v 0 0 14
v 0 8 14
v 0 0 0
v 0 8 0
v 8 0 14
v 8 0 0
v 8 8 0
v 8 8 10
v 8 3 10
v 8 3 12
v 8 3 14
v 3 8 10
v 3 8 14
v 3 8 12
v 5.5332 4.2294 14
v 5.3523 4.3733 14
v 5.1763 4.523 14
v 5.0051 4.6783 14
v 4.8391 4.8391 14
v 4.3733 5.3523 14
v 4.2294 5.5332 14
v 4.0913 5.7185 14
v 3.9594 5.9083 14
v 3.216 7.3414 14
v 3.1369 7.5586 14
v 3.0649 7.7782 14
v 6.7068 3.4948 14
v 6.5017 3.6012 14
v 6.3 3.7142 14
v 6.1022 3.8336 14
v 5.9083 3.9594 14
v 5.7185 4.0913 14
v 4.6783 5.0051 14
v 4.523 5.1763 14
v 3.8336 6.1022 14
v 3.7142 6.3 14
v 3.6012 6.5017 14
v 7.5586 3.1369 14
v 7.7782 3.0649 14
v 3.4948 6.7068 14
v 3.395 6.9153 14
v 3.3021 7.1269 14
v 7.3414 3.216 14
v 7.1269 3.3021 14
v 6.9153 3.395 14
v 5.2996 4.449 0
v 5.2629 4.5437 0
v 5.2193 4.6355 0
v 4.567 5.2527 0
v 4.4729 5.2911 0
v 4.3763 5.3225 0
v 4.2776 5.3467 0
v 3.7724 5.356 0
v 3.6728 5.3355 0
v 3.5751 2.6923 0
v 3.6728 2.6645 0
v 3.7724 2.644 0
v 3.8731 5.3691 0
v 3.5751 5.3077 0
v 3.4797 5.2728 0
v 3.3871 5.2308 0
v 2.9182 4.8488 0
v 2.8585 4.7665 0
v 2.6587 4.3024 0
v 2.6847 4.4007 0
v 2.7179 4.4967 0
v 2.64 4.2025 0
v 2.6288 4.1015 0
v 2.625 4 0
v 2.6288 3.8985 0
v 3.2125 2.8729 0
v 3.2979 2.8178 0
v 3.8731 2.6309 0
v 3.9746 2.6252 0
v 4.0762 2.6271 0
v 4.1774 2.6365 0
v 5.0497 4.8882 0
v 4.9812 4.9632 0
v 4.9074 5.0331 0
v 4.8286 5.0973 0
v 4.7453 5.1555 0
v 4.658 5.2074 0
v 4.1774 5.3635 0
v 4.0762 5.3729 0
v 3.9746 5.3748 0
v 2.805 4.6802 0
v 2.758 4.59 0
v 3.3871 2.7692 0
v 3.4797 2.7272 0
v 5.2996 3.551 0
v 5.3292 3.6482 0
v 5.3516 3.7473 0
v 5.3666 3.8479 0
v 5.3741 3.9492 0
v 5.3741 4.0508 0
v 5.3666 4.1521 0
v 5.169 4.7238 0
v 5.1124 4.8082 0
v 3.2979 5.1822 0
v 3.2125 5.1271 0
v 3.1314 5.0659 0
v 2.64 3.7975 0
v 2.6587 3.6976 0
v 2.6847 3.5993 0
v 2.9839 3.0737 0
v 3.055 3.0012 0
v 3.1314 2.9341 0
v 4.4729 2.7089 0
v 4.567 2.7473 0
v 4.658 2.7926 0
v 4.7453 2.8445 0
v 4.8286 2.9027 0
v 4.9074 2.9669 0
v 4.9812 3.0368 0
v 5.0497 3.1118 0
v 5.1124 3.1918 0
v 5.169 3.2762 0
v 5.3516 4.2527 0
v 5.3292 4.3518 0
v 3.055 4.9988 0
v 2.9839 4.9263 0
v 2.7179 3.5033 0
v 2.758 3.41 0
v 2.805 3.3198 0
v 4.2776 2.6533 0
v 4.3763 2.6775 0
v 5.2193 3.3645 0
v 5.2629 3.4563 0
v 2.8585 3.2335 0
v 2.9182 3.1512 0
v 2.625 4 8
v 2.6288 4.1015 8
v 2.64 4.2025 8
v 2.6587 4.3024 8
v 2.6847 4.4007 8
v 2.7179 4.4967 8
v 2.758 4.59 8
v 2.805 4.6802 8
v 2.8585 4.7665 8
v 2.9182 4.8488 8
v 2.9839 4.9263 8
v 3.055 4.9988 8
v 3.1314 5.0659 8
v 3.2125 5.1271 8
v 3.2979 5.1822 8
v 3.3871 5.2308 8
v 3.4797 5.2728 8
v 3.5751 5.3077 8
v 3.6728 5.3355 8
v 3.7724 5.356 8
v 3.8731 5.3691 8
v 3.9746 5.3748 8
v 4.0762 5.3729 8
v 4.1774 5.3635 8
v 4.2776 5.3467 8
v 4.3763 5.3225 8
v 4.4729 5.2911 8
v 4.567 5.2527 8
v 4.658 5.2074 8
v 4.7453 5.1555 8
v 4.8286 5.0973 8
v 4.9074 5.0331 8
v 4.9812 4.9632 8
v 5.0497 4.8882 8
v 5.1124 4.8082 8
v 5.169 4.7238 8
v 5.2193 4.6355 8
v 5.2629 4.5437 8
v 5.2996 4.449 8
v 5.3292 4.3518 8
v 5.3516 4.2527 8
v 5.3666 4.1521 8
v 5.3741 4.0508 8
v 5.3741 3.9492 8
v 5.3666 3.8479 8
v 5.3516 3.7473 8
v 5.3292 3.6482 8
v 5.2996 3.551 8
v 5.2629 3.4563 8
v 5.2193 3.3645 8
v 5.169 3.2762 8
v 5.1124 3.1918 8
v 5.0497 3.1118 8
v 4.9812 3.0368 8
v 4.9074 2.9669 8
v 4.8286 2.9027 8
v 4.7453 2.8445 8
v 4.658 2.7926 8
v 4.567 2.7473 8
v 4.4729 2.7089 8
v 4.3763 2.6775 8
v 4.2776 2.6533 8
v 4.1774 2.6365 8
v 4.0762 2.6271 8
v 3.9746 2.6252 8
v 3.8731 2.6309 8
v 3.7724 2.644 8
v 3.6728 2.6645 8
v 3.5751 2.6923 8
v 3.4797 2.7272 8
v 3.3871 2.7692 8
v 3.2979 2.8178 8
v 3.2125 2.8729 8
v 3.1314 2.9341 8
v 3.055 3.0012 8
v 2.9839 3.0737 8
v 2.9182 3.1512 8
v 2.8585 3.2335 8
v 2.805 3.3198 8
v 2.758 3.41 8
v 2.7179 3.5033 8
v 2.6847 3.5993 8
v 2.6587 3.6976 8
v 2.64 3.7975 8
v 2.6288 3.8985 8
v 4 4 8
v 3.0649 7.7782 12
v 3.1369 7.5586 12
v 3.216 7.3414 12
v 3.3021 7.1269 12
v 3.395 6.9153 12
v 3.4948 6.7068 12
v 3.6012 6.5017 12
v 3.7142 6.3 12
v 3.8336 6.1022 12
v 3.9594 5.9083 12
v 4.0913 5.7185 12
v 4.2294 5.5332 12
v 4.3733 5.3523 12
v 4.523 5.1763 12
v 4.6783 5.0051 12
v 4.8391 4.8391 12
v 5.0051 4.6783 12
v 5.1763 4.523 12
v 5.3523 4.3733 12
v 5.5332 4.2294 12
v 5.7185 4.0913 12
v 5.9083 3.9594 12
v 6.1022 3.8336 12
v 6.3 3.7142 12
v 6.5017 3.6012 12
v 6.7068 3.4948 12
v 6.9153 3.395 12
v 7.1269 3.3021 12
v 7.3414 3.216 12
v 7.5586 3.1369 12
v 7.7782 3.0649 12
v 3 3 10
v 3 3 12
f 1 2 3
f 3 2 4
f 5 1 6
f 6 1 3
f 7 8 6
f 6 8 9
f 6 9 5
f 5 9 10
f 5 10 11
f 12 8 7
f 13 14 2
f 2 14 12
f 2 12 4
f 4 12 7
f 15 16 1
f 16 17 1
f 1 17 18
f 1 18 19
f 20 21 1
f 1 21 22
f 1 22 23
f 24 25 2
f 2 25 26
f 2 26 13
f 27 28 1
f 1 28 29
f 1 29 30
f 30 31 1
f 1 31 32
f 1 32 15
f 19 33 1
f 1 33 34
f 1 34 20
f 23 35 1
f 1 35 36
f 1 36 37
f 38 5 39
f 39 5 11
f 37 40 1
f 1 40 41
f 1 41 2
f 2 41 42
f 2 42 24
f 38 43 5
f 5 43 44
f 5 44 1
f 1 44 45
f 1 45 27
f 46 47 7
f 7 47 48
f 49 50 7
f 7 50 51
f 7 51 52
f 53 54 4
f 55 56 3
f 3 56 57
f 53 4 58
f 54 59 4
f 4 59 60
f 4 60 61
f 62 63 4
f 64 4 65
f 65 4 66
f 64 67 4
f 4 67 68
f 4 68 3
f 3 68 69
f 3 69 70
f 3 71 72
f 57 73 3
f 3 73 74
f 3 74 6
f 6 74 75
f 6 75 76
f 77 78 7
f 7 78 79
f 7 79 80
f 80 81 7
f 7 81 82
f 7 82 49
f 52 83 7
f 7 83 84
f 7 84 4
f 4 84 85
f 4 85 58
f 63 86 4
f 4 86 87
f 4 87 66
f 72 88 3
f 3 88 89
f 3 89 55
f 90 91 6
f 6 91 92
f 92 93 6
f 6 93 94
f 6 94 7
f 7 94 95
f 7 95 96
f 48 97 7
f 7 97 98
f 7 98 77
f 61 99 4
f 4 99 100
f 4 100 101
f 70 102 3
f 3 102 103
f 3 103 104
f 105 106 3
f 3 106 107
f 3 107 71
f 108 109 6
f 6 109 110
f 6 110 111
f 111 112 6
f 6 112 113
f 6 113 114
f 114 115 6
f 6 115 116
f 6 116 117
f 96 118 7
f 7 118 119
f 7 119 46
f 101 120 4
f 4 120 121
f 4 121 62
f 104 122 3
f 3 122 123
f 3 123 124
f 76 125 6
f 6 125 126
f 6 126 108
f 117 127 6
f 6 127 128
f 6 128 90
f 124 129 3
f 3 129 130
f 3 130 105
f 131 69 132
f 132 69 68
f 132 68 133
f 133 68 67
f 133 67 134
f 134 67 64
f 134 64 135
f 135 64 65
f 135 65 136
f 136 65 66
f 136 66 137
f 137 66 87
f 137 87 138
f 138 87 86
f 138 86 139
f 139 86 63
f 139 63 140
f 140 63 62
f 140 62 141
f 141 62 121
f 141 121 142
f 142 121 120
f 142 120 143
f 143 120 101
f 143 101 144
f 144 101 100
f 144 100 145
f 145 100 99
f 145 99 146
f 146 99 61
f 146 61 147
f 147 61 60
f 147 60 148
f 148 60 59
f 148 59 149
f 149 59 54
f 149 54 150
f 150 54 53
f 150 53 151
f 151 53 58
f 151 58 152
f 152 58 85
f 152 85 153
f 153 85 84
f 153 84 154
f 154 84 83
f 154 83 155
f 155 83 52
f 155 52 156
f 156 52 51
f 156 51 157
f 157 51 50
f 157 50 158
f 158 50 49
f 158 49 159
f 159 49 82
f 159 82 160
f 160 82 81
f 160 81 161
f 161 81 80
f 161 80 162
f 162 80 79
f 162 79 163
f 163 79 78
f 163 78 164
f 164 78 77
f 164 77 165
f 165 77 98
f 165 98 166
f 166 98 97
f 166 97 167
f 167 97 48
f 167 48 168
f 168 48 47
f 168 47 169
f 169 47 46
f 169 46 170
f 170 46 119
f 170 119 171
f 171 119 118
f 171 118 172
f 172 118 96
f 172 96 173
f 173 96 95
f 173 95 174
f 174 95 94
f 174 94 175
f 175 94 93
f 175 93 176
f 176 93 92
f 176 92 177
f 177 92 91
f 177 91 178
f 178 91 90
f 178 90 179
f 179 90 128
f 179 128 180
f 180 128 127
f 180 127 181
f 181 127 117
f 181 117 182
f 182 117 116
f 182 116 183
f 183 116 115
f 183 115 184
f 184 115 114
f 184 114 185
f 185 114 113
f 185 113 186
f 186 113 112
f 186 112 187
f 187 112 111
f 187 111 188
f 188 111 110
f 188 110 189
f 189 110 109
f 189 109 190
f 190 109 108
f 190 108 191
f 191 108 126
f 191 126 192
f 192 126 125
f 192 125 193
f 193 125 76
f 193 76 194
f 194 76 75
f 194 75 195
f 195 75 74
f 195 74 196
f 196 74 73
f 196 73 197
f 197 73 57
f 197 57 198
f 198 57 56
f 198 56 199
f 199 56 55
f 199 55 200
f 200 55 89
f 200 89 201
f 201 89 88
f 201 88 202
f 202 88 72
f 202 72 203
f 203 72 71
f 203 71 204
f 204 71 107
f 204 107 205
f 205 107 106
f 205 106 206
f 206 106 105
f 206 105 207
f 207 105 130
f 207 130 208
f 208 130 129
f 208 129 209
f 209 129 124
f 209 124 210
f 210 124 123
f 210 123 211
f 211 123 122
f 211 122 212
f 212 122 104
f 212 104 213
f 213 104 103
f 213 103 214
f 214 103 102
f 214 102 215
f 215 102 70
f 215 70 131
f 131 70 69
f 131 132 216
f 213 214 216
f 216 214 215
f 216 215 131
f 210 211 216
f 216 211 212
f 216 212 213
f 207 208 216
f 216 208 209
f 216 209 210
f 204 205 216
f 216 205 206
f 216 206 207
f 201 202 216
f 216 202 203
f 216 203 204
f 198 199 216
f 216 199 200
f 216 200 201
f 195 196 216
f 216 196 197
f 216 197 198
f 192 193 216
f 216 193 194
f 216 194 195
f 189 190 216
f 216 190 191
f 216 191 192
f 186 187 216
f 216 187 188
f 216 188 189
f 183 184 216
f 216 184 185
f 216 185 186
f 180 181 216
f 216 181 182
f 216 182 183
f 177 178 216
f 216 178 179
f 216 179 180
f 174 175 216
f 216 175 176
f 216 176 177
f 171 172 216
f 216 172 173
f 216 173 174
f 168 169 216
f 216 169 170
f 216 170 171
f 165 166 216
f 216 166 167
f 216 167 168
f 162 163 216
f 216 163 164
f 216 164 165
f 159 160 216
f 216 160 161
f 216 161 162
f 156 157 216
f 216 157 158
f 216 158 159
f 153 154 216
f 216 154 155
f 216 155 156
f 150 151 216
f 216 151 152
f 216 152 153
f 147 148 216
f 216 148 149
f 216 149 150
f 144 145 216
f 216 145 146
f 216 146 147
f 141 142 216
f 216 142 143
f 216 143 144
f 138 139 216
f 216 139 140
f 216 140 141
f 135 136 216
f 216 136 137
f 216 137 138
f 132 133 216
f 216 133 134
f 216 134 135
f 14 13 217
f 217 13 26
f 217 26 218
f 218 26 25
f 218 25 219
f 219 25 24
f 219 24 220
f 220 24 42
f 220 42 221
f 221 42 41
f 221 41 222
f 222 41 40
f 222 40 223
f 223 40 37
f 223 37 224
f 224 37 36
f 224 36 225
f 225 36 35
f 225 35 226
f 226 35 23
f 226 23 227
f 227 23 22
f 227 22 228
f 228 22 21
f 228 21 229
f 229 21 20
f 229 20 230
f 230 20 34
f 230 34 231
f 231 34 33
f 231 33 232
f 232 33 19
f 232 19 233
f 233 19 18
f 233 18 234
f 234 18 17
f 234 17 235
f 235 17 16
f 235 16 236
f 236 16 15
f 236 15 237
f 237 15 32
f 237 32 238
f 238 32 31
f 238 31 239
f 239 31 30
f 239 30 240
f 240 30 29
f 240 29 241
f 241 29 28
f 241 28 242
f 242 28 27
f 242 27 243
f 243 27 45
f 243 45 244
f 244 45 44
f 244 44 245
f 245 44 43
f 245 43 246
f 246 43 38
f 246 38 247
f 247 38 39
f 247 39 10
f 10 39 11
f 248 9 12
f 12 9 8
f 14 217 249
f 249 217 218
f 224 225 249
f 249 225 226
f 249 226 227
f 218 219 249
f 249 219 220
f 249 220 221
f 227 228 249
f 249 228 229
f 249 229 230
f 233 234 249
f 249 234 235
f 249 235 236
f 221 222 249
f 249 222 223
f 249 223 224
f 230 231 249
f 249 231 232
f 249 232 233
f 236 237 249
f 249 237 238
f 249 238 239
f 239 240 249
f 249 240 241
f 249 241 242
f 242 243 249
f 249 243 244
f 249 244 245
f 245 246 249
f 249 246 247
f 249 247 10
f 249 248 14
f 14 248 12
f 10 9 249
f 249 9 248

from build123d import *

# Parameters (mm, degrees)
SZKIC1_W                    = 8
SZKIC1_H                    = 8
DODANIE_WYCI_GNI_CIE1_DEPTH = 14
SZKIC3_R                    = 1.375
WYTNIJ_WYCI_GNI_CIE1_DEPTH  = 8
WYTNIJ_WYCI_GNI_CIE4_DEPTH  = 4
SZKIC7_W                    = 5
SZKIC7_H                    = 2
WYTNIJ_WYCI_GNI_CIE5_DEPTH  = 5


with BuildPart() as part:
    # Szkic1 → Dodanie-wyciągnięcie1 (new body)
    with BuildSketch(Plane.XY):
        with Locations((4, 4)):
            Rectangle(SZKIC1_W, SZKIC1_H)
    extrude(amount=DODANIE_WYCI_GNI_CIE1_DEPTH)

    # Szkic3 → Wytnij-wyciągnięcie1 (cut)
    with BuildSketch(Plane(origin=(0, 0, 0), x_dir=(-1, 0, 0), z_dir=(0, 0, -1))):
        with Locations((-4, 4)):
            Circle(SZKIC3_R)
    extrude(amount=-WYTNIJ_WYCI_GNI_CIE1_DEPTH, mode=Mode.SUBTRACT)

    # Szkic6 → Wytnij-wyciągnięcie4 (cut)
    with BuildSketch(Plane.XY.offset(14)):
        with BuildLine():
            ThreePointArc((17.051885032, 9.897788808), (8.940279558, 16.987518621), (3, 8))
            Line((3, 8), (8, 8))
            Line((8, 8), (8, 3))
            ThreePointArc((8, 3), (14.233923552, 4.207531496), (17.051885032, 9.897788808))
        make_face()
        with BuildLine():
            Line((8, 8), (3, 8))
            ThreePointArc((3, 8), (4.839078854, 4.839078854), (8, 3))
            Line((8, 3), (8, 8))
        make_face()
    extrude(amount=-WYTNIJ_WYCI_GNI_CIE4_DEPTH, mode=Mode.SUBTRACT)

    # Szkic7 → Wytnij-wyciągnięcie5 (cut)
    with BuildSketch(Plane(origin=(0, 8, 0), x_dir=(1, 0, 0), z_dir=(0, 1, 0))):
        with Locations((5.5, -11)):
            Rectangle(SZKIC7_W, SZKIC7_H)
    extrude(amount=-WYTNIJ_WYCI_GNI_CIE5_DEPTH, mode=Mode.SUBTRACT)


solid = part.part
